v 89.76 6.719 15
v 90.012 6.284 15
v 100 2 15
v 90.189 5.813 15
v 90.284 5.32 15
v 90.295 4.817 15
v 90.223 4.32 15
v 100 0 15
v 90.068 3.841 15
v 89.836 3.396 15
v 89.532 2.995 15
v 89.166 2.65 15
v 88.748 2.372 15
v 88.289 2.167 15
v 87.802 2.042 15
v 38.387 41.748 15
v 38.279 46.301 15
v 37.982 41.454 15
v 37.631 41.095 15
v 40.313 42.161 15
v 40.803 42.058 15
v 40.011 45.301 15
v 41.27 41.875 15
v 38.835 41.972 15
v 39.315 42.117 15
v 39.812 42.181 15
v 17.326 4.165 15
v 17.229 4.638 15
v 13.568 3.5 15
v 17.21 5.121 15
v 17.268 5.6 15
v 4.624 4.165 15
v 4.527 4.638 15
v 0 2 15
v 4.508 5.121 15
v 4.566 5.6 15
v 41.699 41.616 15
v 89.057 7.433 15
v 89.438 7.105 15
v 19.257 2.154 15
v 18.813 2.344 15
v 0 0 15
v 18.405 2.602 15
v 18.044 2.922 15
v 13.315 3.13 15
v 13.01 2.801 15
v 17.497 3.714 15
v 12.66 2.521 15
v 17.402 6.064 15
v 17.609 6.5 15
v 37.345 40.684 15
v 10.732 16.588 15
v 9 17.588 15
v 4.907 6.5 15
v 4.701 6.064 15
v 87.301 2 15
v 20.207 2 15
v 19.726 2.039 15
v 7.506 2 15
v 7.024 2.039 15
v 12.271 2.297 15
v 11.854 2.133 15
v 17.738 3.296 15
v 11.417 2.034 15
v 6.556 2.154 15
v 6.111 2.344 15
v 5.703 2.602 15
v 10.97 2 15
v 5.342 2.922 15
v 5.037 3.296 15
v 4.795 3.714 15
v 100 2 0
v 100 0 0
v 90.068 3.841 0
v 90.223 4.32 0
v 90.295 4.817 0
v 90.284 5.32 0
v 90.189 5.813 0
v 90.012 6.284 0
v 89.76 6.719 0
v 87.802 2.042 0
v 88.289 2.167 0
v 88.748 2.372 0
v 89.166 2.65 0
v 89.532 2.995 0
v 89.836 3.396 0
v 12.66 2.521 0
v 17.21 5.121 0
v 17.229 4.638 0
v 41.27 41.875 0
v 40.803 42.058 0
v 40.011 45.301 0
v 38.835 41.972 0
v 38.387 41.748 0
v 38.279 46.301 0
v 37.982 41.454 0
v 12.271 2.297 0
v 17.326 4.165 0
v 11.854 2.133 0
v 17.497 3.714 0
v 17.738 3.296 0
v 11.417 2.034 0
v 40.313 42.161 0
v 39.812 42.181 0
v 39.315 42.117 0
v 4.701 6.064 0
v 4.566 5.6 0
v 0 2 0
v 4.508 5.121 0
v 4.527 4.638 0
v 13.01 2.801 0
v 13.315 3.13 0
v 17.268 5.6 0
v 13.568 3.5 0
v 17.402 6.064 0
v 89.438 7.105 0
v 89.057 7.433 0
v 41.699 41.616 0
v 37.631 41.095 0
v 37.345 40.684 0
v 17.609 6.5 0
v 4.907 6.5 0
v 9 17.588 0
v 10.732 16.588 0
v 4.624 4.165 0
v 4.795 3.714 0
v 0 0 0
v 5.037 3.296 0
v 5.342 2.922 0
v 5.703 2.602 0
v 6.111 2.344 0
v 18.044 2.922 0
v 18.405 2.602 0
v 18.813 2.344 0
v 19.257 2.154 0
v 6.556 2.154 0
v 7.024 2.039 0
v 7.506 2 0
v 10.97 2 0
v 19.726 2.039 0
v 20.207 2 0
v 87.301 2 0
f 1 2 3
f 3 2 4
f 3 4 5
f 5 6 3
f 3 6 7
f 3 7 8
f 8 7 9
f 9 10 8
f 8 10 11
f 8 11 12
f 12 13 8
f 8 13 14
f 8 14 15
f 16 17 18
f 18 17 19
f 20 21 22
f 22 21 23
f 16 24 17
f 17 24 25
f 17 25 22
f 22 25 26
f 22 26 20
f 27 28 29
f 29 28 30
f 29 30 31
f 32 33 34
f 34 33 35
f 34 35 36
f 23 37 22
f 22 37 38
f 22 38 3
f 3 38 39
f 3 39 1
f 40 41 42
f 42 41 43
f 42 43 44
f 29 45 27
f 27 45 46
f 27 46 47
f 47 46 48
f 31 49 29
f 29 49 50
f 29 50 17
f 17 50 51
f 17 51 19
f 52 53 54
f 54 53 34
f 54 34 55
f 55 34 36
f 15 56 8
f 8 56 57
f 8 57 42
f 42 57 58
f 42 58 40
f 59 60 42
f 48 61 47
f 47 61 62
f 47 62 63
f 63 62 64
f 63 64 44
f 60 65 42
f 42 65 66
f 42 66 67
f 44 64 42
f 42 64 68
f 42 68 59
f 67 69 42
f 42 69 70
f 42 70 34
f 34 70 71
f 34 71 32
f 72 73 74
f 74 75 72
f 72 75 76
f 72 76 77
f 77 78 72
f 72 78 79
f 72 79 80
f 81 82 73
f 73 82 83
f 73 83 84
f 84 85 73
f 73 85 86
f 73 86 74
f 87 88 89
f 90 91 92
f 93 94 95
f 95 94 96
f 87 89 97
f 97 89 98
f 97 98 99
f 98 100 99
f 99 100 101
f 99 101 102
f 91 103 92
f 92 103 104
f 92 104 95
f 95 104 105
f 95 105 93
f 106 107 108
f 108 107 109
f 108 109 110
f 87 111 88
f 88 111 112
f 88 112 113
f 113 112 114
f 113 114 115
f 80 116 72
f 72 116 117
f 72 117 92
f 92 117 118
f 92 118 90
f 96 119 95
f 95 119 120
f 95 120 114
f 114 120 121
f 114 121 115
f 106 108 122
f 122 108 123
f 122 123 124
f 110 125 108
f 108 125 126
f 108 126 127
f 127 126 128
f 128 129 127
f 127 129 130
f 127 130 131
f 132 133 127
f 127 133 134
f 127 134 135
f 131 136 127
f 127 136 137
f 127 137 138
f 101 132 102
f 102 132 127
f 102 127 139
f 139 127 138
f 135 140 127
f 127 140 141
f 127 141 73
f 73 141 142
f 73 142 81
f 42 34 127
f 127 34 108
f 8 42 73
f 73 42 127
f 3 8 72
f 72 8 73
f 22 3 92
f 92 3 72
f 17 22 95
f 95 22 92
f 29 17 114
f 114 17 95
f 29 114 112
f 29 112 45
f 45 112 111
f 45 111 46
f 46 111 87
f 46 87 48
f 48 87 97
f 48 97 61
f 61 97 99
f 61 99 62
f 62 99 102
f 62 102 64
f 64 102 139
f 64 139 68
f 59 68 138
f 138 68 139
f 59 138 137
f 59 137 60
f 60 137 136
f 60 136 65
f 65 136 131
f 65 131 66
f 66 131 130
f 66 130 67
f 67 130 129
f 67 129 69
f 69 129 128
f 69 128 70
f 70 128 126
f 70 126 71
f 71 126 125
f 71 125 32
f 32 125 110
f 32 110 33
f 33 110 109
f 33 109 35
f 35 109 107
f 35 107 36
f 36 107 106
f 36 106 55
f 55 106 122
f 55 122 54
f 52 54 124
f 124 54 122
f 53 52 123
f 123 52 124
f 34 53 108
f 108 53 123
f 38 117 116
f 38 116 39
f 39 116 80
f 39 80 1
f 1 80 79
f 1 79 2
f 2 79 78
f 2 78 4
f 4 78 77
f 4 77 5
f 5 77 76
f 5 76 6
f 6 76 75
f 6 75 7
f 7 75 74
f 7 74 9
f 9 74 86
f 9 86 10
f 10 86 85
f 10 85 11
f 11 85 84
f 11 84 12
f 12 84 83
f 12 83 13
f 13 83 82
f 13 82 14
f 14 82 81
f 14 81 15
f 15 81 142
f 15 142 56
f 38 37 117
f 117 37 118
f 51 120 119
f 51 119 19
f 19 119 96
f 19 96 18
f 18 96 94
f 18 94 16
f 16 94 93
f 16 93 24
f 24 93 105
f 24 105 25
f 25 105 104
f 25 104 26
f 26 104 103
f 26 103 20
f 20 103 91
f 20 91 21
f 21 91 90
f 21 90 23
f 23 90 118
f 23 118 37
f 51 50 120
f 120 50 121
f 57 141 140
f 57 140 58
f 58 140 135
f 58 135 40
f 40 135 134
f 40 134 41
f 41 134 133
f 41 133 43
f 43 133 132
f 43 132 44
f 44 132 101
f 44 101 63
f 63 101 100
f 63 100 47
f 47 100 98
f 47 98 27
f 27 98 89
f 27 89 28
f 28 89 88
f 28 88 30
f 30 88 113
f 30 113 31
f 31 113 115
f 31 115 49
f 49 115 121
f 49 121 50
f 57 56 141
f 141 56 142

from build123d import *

# Parameters (mm, degrees)
BOSS_EXTRUDE1_DEPTH = 15


with BuildPart() as part:
    # Sketch1 → Boss-Extrude1 (new body)
    with BuildSketch(Plane.XY):
        with BuildLine():
            Line((0, 0), (100, 0))
            Line((100, 0), (100, 2))
            Line((100, 2), (40.011106999, 45.301270189))
            Line((40.011106999, 45.301270189), (38.279056191, 46.301270189))
            Line((38.279056191, 46.301270189), (13.567731326, 3.5))
            ThreePointArc((13.567731326, 3.5), (12.469655115, 2.401923789), (10.969655115, 2))
            Line((10.969655115, 2), (7.505553499, 2))
            ThreePointArc((7.505553499, 2), (4.907477288, 3.5), (4.907477288, 6.5))
            Line((4.907477288, 6.5), (10.732050808, 16.588457268))
            Line((10.732050808, 16.588457268), (9, 17.588457268))
            Line((9, 17.588457268), (0, 2))
            Line((0, 2), (0, 0))
        make_face()
        with BuildLine():
            Line((87.30088378, 2), (20.207259422, 2))
            ThreePointArc((20.207259422, 2), (17.60918321, 3.5), (17.60918321, 6.5))
            Line((17.60918321, 6.5), (37.345181053, 40.683751002))
            ThreePointArc((37.345181053, 40.683751002), (39.31497907, 42.117224457), (41.699088187, 41.616251315))
            Line((41.699088187, 41.616251315), (89.056714702, 7.432500313))
            ThreePointArc((89.056714702, 7.432500313), (90.15548541, 4.07736815), (87.30088378, 2))
        make_face(mode=Mode.SUBTRACT)
    extrude(amount=BOSS_EXTRUDE1_DEPTH)


solid = part.part
